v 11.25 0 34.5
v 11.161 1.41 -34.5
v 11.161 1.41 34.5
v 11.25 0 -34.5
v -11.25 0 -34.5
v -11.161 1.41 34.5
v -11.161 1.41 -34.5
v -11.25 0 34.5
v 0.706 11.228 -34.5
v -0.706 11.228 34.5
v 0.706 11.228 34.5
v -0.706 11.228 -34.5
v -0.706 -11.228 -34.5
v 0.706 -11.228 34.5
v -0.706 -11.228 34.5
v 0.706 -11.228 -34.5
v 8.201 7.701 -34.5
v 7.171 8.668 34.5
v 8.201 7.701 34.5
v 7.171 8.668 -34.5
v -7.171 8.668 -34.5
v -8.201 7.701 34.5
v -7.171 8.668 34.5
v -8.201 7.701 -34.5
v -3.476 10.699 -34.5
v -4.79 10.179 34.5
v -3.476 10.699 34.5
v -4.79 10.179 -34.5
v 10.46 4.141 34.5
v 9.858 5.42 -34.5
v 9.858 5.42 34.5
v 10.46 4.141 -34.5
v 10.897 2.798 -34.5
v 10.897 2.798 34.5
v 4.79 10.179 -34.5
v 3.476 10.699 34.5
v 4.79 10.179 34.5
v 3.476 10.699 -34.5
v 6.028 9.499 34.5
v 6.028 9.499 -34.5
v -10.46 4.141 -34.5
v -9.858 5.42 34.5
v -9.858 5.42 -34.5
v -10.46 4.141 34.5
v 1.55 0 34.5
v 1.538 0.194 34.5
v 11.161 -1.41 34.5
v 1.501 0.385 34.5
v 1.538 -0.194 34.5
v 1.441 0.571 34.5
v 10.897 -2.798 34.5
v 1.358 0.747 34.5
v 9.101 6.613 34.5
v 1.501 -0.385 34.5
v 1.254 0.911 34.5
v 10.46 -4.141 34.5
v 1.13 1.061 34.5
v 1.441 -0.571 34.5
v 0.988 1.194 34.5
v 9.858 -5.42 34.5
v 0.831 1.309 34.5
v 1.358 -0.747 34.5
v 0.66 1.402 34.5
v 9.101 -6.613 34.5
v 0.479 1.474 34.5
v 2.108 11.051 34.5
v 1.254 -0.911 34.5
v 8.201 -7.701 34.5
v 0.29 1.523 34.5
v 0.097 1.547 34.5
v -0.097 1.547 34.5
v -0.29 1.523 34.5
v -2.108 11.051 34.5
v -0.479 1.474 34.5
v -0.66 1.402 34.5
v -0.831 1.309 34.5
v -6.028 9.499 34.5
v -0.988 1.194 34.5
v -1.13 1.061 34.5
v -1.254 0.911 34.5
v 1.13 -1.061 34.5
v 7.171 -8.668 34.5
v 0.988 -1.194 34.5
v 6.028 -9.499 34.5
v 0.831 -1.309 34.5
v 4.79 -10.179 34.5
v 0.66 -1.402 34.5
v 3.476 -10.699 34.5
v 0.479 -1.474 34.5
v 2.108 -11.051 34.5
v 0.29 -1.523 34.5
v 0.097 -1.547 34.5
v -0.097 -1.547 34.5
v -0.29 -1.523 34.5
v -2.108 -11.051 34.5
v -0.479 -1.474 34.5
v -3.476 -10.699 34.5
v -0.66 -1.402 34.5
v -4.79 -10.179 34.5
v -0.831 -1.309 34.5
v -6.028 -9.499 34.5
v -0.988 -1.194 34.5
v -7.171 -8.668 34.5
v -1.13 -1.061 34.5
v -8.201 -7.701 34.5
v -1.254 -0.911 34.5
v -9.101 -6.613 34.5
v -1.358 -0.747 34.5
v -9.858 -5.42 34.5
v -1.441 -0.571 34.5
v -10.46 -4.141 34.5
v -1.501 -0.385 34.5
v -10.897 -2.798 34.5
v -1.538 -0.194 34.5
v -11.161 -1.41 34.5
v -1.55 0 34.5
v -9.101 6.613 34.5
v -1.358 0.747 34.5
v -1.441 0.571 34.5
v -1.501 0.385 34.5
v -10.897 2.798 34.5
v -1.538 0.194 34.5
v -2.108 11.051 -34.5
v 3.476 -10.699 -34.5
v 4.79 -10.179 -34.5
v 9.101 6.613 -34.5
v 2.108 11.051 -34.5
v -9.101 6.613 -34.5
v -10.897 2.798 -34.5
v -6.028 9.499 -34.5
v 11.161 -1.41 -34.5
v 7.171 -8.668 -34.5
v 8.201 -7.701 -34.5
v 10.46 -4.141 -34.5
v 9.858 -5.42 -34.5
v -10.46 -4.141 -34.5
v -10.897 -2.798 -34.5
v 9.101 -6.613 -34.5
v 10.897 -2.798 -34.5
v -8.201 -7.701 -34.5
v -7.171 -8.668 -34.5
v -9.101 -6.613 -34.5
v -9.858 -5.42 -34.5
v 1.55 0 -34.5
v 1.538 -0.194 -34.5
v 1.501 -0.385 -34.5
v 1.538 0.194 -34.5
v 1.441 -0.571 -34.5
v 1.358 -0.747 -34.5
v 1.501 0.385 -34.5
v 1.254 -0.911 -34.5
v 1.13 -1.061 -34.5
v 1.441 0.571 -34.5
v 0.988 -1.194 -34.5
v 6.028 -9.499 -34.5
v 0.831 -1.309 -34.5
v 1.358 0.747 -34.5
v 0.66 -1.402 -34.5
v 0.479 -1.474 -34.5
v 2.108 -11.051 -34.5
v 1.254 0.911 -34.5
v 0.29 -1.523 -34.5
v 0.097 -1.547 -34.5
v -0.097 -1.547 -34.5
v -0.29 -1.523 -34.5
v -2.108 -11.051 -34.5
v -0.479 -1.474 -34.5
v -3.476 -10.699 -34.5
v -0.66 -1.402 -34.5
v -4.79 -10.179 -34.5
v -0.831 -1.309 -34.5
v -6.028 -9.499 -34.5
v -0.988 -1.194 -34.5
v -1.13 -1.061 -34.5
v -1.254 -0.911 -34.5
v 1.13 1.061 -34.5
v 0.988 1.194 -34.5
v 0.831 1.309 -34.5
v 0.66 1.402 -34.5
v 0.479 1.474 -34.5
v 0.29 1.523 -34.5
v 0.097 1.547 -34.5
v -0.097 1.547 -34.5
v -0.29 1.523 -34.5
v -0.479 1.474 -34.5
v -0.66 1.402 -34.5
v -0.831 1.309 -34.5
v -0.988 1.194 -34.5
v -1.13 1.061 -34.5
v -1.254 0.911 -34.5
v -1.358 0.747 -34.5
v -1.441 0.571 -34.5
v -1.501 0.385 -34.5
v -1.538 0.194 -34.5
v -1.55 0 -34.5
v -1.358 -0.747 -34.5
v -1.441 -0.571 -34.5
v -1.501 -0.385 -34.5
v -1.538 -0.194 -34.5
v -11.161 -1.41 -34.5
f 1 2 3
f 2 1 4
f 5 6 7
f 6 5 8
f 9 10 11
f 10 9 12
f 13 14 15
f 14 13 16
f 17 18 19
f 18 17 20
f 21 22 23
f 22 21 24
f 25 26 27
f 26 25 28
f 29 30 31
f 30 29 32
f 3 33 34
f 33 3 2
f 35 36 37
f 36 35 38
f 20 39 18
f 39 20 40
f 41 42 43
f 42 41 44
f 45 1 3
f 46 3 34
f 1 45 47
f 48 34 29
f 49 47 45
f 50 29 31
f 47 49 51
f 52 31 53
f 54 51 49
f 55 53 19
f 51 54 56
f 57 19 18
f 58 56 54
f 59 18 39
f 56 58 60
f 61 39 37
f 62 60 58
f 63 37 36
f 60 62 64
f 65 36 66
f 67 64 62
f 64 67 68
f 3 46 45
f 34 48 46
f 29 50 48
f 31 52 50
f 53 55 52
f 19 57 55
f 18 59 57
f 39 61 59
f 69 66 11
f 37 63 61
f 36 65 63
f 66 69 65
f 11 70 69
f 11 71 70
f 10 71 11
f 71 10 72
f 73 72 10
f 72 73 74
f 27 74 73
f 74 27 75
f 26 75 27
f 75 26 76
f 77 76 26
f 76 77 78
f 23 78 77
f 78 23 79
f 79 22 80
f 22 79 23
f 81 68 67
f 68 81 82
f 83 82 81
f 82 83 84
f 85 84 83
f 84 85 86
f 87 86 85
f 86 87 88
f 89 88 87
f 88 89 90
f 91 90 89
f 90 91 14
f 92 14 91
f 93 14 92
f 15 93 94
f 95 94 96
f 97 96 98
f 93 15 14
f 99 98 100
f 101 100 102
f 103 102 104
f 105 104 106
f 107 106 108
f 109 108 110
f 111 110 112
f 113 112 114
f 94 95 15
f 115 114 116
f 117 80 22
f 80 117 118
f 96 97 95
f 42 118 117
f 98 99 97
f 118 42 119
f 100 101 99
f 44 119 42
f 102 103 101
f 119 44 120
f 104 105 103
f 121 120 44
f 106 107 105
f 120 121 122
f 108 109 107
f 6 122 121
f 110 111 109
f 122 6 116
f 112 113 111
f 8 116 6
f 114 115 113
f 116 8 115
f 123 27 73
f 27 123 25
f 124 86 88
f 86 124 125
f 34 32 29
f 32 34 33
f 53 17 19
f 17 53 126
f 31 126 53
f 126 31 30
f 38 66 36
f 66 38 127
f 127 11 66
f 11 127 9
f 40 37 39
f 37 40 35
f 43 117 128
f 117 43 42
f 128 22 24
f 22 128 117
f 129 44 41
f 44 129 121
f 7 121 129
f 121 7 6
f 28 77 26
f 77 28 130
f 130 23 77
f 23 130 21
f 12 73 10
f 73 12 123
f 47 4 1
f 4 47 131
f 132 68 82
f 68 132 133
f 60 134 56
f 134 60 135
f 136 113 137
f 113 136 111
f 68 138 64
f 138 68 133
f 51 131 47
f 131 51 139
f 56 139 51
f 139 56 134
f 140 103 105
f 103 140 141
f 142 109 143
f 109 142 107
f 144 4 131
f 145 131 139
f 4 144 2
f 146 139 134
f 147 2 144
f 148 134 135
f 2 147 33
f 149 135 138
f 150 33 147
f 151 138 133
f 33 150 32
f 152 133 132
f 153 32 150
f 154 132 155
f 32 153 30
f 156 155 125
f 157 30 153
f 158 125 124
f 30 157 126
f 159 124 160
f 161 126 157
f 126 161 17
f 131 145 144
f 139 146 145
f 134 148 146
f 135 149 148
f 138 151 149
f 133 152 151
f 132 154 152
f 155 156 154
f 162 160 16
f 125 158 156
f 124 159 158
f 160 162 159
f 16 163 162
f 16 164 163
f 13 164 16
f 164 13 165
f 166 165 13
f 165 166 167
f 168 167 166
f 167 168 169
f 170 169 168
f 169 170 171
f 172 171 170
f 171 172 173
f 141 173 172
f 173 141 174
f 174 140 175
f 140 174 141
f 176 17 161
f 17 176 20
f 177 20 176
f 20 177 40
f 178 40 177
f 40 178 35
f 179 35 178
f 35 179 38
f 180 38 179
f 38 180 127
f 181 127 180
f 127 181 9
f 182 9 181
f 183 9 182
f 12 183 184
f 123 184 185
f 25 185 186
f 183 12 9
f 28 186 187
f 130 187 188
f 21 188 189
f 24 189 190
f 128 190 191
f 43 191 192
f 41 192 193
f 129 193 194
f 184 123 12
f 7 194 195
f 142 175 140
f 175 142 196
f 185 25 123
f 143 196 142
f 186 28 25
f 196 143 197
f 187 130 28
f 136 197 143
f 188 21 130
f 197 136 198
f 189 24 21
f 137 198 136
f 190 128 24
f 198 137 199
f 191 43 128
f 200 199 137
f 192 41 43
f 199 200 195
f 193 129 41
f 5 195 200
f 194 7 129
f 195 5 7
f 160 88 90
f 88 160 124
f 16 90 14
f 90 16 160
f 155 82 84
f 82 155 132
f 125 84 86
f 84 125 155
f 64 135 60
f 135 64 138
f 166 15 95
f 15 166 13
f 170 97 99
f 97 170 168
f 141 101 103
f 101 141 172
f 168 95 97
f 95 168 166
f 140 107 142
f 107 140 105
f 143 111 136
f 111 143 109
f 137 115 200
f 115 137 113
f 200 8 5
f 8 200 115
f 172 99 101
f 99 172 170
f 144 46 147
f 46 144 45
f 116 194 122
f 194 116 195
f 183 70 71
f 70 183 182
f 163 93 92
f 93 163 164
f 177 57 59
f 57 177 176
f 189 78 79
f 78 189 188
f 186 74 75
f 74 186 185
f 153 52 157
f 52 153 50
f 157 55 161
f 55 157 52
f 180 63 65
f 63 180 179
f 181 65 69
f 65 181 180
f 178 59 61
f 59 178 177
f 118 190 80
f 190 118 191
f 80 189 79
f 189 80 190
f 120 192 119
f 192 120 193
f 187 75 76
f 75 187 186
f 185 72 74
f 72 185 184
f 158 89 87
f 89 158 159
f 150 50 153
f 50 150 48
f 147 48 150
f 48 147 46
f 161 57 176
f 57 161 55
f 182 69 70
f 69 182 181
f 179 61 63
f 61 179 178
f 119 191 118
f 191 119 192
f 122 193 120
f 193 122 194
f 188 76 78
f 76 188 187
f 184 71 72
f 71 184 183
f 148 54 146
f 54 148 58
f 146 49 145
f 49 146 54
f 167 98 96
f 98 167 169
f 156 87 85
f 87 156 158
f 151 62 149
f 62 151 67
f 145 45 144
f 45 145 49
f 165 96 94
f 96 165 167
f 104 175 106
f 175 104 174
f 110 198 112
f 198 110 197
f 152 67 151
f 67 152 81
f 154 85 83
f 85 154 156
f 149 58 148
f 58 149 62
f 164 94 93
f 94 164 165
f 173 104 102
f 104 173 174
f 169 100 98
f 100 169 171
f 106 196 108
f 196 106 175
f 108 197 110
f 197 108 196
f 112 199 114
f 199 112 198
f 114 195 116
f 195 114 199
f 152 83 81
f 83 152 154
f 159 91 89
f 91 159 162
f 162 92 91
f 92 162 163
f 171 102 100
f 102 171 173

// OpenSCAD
$fn = 50;


difference() {
	union() {
		translate(v = [0, 0, -34.5000000000]) {
			cylinder(h = 69, r = 11.2500000000);
		}
	}
	union() {
		translate(v = [0, 0, -100.0000000000]) {
			cylinder(h = 200, r = 1.5500000000);
		}
	}
}
